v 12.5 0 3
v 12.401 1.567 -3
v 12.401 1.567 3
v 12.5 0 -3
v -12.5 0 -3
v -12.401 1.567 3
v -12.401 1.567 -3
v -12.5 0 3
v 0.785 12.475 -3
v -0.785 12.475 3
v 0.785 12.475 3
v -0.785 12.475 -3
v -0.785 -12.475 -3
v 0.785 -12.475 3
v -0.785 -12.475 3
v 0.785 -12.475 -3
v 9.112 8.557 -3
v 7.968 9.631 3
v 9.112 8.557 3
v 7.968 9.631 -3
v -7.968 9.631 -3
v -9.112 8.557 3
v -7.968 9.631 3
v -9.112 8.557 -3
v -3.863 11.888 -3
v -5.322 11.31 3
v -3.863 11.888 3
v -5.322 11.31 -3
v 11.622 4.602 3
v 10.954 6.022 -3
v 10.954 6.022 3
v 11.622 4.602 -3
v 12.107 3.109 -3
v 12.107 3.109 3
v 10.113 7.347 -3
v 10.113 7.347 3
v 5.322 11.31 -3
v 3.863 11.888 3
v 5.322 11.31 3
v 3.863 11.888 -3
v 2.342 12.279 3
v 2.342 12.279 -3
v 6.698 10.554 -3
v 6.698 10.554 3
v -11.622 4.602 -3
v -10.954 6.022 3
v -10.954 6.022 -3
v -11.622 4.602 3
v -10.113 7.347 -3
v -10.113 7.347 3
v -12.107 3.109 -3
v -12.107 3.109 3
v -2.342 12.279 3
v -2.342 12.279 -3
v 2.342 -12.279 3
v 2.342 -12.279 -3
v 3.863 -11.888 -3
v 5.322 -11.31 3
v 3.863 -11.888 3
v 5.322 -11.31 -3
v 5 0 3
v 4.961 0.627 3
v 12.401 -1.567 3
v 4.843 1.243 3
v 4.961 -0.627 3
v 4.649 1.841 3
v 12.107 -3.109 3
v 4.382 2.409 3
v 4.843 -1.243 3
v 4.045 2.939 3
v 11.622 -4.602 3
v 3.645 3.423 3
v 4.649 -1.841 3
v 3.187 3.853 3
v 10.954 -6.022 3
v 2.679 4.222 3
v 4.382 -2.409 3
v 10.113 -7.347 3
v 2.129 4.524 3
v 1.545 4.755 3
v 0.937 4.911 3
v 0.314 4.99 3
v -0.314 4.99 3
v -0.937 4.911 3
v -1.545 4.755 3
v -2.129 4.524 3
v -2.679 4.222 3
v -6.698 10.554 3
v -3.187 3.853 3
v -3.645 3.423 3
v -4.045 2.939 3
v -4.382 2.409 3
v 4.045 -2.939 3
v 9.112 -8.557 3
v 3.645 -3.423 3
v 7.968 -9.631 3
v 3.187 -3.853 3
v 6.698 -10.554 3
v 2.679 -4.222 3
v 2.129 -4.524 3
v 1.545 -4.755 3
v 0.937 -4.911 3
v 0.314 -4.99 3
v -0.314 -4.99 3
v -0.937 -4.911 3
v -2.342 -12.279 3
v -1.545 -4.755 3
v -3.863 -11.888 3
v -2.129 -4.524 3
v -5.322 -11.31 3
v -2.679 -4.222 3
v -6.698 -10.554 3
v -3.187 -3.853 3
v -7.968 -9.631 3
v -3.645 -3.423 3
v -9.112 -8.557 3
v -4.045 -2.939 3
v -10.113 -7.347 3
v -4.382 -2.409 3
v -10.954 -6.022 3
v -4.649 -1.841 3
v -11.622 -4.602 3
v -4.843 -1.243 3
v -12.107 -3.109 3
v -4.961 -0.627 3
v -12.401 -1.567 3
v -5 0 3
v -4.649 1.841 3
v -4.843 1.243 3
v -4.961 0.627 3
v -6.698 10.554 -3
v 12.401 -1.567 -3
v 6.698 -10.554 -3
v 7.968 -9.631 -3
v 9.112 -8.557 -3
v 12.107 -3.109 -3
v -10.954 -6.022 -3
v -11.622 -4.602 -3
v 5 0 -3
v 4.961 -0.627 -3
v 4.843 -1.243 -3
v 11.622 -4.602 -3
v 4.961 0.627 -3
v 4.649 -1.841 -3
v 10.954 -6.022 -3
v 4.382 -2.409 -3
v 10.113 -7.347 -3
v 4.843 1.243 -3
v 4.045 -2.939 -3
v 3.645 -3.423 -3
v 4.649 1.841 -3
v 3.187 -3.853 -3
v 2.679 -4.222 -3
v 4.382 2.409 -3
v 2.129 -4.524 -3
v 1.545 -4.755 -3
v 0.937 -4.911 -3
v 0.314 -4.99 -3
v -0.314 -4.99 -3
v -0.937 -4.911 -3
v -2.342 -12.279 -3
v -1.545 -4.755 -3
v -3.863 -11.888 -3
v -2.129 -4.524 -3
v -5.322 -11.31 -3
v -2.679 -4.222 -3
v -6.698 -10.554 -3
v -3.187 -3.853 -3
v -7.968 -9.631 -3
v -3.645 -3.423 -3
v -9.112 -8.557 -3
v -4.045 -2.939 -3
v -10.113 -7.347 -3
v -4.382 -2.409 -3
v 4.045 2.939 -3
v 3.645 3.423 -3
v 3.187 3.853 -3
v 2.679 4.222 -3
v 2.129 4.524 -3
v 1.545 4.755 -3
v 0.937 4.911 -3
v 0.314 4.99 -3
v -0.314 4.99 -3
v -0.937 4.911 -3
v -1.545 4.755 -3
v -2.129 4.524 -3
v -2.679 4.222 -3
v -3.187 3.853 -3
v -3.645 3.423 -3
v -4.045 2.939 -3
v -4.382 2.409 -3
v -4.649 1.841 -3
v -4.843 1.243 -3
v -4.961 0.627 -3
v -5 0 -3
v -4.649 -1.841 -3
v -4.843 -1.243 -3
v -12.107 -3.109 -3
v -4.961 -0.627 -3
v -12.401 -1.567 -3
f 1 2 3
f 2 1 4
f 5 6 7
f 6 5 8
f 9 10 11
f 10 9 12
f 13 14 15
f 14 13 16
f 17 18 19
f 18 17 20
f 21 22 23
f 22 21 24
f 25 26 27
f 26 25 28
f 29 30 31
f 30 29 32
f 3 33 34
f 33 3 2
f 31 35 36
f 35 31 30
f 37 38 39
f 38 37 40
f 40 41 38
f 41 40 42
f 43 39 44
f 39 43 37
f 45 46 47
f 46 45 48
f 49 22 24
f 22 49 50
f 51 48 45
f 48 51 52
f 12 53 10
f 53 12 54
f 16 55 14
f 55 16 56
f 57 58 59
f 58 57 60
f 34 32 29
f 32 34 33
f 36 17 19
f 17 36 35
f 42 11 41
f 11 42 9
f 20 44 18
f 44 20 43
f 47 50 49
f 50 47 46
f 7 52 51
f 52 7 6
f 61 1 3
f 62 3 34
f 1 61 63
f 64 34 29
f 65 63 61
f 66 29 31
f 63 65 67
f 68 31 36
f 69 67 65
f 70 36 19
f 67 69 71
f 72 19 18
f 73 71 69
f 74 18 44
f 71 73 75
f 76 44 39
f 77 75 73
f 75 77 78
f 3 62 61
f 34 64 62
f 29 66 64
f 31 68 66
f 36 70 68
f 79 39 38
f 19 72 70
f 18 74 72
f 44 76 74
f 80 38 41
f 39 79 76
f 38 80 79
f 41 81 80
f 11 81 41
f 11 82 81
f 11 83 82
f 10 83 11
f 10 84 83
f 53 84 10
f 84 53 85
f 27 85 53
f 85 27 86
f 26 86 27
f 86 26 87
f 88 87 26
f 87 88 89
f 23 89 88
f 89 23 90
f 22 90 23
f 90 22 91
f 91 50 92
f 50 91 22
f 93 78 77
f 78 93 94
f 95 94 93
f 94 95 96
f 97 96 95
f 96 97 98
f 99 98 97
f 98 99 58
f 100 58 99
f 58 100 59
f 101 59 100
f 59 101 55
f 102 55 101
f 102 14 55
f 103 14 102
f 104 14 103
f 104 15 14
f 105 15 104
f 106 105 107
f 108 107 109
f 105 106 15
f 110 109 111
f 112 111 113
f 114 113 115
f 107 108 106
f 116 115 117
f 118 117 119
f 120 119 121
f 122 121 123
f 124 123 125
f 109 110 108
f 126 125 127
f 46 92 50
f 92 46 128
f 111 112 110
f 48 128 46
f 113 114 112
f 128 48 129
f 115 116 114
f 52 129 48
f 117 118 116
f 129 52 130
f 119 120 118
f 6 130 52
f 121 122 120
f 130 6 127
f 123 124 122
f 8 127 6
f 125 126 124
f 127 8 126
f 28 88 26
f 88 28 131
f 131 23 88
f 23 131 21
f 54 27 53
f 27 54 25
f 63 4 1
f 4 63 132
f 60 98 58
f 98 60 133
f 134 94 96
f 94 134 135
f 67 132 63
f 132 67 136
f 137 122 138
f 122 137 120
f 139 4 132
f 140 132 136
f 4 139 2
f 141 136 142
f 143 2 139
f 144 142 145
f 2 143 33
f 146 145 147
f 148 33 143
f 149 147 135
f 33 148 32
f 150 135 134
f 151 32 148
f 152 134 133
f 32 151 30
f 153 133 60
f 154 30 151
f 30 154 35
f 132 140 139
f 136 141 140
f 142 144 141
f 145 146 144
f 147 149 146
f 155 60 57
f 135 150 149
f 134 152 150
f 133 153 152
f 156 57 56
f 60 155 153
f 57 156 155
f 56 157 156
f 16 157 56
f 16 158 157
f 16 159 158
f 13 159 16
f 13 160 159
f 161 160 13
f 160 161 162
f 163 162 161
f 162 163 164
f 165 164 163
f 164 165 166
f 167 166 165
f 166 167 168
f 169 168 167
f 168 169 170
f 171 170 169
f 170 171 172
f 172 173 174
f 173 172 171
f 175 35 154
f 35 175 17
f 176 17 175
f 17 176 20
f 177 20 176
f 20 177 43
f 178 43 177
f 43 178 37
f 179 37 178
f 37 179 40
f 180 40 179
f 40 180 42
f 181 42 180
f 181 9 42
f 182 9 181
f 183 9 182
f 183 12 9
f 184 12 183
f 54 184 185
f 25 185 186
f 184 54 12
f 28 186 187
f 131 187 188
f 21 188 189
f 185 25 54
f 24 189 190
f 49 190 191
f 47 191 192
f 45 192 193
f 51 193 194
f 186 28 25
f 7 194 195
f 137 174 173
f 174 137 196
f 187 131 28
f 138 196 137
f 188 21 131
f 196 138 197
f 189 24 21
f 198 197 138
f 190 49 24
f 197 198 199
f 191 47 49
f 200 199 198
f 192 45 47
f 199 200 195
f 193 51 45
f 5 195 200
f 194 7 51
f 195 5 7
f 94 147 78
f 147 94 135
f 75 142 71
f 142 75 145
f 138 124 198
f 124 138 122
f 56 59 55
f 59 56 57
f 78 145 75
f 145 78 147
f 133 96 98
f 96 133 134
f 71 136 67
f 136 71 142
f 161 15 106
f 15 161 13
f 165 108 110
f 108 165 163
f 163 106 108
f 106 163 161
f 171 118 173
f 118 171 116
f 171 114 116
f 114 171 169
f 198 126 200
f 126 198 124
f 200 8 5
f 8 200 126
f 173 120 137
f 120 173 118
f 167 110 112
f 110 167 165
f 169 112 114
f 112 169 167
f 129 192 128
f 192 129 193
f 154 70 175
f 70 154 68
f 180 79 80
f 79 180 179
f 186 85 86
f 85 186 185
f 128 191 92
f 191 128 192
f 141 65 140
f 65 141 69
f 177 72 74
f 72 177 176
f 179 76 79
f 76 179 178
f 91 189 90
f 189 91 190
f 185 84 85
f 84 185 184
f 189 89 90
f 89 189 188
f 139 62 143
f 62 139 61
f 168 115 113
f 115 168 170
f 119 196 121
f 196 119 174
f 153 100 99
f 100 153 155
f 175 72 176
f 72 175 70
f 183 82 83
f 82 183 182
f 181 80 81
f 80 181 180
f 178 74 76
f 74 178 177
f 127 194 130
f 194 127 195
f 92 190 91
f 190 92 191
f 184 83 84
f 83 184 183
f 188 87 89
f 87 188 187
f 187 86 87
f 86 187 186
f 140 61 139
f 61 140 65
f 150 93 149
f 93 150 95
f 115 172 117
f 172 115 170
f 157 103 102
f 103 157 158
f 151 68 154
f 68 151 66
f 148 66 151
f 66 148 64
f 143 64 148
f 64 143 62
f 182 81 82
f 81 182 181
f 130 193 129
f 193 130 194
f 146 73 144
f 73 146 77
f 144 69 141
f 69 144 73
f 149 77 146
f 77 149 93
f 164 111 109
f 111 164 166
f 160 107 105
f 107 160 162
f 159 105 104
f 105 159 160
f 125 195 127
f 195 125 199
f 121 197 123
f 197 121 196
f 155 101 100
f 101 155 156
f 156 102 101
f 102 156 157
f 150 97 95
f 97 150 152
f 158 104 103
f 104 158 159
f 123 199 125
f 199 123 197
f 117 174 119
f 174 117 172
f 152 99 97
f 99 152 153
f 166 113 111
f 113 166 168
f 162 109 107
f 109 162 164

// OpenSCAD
$fn = 50;


difference() {
	union() {
		translate(v = [0, 0, -3.0000000000]) {
			cylinder(h = 6, r = 12.5000000000);
		}
	}
	union() {
		translate(v = [0, 0, -100.0000000000]) {
			cylinder(h = 200, r = 5);
		}
	}
}
